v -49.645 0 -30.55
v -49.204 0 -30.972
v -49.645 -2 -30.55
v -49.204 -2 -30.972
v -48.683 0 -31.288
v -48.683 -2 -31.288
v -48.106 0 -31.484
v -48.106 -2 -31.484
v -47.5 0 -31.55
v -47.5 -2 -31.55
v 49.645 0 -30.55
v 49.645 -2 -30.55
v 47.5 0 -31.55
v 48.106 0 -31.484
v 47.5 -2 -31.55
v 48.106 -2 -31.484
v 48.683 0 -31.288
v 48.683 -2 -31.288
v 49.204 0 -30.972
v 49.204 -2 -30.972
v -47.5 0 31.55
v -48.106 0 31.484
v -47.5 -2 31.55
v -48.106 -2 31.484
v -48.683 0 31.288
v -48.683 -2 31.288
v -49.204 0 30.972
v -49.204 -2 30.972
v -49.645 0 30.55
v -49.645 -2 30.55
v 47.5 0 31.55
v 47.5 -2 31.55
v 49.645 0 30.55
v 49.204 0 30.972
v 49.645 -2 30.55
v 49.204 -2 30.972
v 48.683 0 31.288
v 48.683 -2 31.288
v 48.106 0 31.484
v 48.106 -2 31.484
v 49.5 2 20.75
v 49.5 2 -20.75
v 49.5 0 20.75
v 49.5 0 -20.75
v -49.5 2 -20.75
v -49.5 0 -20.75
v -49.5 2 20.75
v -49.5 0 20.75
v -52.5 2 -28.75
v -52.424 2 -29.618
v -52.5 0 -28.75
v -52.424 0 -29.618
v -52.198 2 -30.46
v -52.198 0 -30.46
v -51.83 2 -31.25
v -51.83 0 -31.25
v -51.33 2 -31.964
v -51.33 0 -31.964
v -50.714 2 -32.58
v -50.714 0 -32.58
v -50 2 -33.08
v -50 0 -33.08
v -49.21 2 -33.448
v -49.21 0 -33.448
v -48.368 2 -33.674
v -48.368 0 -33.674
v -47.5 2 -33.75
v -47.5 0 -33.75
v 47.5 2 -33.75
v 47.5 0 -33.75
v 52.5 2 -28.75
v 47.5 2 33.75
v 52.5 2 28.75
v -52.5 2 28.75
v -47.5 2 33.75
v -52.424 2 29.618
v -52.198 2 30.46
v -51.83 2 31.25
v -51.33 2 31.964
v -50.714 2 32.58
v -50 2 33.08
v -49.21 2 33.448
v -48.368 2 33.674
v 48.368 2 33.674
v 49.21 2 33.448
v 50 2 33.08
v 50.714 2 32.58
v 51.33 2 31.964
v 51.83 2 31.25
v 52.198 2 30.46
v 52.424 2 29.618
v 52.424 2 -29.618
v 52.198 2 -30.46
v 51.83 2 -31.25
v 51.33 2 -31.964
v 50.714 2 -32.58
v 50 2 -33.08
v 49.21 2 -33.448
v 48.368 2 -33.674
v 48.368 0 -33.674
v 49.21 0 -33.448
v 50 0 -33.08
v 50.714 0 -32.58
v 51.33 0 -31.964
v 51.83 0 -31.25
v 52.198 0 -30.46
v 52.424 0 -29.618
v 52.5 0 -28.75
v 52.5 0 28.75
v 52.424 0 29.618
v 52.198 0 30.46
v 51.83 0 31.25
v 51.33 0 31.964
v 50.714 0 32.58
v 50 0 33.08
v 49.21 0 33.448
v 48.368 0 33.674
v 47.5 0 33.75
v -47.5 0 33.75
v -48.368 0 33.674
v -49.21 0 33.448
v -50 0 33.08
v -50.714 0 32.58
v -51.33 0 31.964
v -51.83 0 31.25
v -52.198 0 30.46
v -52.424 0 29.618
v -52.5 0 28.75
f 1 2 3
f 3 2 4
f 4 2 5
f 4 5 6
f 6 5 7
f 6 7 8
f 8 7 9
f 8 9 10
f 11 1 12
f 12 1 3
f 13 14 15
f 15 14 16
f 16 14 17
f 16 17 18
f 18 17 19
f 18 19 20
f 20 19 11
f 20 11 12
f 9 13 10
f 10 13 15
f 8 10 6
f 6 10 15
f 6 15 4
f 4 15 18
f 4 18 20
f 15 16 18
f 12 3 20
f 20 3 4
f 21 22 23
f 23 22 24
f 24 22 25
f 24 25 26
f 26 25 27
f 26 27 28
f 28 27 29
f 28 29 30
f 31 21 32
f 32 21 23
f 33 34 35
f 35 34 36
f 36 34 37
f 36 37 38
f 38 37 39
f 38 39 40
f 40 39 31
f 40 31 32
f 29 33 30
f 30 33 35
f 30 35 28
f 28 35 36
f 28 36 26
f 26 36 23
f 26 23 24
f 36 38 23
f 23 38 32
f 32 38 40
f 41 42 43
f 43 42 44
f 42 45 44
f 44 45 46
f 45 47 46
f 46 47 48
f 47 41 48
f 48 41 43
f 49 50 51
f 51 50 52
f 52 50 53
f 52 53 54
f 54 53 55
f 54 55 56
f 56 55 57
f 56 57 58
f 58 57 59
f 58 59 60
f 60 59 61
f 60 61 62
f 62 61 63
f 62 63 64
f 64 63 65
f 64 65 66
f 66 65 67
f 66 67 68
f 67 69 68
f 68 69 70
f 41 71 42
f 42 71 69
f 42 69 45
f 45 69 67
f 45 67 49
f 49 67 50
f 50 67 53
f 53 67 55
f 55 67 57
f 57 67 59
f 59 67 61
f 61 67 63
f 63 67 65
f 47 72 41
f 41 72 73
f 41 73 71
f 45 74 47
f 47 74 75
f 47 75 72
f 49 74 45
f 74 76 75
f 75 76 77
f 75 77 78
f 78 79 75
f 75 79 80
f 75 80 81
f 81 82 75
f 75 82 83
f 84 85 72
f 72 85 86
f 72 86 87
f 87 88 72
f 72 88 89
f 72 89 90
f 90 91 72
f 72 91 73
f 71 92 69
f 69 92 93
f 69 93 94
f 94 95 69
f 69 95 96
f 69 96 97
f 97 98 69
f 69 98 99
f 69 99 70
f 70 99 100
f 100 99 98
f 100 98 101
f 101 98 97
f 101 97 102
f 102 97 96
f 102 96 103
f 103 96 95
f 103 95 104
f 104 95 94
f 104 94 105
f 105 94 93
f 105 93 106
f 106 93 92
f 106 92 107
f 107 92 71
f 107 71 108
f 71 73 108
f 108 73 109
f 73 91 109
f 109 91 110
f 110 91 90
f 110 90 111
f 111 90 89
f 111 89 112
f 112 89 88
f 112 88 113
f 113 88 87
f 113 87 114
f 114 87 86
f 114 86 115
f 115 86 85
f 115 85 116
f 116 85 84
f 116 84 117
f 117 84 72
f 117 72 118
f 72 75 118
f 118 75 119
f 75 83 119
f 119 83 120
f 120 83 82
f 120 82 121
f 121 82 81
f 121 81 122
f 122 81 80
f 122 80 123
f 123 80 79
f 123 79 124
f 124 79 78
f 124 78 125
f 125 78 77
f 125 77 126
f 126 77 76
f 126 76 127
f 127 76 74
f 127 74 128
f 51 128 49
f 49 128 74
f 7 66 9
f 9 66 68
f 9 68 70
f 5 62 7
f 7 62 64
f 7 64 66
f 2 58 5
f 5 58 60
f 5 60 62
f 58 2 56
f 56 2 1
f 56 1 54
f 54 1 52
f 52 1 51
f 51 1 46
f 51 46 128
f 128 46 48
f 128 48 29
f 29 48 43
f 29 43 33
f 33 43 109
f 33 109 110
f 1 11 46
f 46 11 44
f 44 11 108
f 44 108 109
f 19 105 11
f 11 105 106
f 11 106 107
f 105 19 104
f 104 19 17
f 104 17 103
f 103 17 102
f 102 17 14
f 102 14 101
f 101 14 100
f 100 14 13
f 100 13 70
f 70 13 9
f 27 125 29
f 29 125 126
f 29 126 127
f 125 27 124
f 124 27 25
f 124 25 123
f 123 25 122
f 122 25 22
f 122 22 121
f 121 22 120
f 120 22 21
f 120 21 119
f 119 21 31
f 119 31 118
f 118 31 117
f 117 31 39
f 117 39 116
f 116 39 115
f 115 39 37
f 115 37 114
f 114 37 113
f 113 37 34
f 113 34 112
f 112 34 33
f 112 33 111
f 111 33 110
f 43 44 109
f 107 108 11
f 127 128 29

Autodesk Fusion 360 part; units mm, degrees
sketch "Sketch1" plane through (0, 0, 0) normal (0, 1, 0) x (1, 0, 0)
  line L0 (-52.5, 33.75) -> (52.5, 33.75)
  line L1 (52.5, 33.75) -> (52.5, -33.75)
  line L2 (52.5, -33.75) -> (-52.5, -33.75)
  line L3 (-52.5, -33.75) -> (-52.5, 33.75)
  line L4 (-52.5, 33.75) -> (52.5, -33.75) construction
  dimension "d115" = 105
  dimension "d116" = 67.5
extrude "Extrude1" add sketch "Sketch1" along normal blind 2
fillet "Fillet1" radius 5 4 edges at (-52.5, 1, 33.75) (52.5, 1, 33.75) (52.5, 1, -33.75) (-52.5, 1, -33.75)
sketch "Sketch2" plane through (0, 2, 0) normal (0, 1, 0) x (-1, 0, 0)
  arc A0 (47.5, -33.75) -> (52.5, -28.75) centre (47.5, -28.75) ccw
  line L0 (52.5, -28.75) -> (52.5, 28.75)
  arc A1 (52.5, 28.75) -> (47.5, 33.75) centre (47.5, 28.75) ccw
  line L1 (47.5, 33.75) -> (-47.5, 33.75)
  arc A2 (-47.5, 33.75) -> (-52.5, 28.75) centre (-47.5, 28.75) ccw
  line L2 (-52.5, 28.75) -> (-52.5, -28.75)
  arc A3 (-52.5, -28.75) -> (-47.5, -33.75) centre (-47.5, -28.75) ccw
  line L3 (-47.5, -33.75) -> (47.5, -33.75)
  line L4 (49.5, -20.75) -> (-49.5, -20.75)
  line L5 (-49.5, -20.75) -> (-49.5, 20.75)
  line L6 (-49.5, 20.75) -> (49.5, 20.75)
  line L7 (49.5, 20.75) -> (49.5, -20.75)
  line L8 (49.5, -20.75) -> (-49.5, 20.75) construction
  dimension "d120" = 99
  dimension "d121" = 41.5
extrude "Extrude2" cut sketch "Sketch2" against normal blind 2 contours L4 L5 L6 L7
sketch "Sketch3" plane through (0, 0, 0) normal (0, -1, 0) x (1, 0, 0)
  line L0 (49.5, 20.75) -> (49.5, -20.75)
  line L1 (49.5, -20.75) -> (-49.5, -20.75)
  line L2 (-49.5, -20.75) -> (-49.5, 20.75)
  line L3 (-49.5, 20.75) -> (49.5, 20.75)
  arc A0 (-52.5, -28.75) -> (-47.5, -33.75) centre (-47.5, -28.75) ccw
  line L4 (-47.5, -33.75) -> (47.5, -33.75)
  arc A1 (47.5, -33.75) -> (52.5, -28.75) centre (47.5, -28.75) ccw
  line L5 (52.5, -28.75) -> (52.5, 28.75)
  arc A2 (52.5, 28.75) -> (47.5, 33.75) centre (47.5, 28.75) ccw
  line L6 (47.5, 33.75) -> (-47.5, 33.75)
  arc A3 (-47.5, 33.75) -> (-52.5, 28.75) centre (-47.5, 28.75) ccw
  line L7 (-52.5, 28.75) -> (-52.5, -28.75)
  line L8 (-50.3, 28.75) -> (-50.3, -28.75)
  arc A4 (-50.3, -28.75) -> (-47.5, -31.55) centre (-47.5, -28.75) ccw
  line L9 (-47.5, -31.55) -> (47.5, -31.55)
  arc A5 (47.5, -31.55) -> (50.3, -28.75) centre (47.5, -28.75) ccw
  line L10 (50.3, -28.75) -> (50.3, 28.75)
  arc A6 (50.3, 28.75) -> (47.5, 31.55) centre (47.5, 28.75) ccw
  line L11 (47.5, 31.55) -> (-47.5, 31.55)
  arc A7 (-47.5, 31.55) -> (-50.3, 28.75) centre (-47.5, 28.75) ccw
  line L12 (-49.6448, 30.55) -> (49.6448, 30.55)
  line L13 (-49.6448, -30.55) -> (49.6448, -30.55)
  dimension "d124" = -2.2
  dimension "d125" = 1
  dimension "d126" = 1
extrude "Extrude3" add sketch "Sketch3" along normal blind 2 contours A6 L11 A7 L12 | A4 L9 A5 L13
